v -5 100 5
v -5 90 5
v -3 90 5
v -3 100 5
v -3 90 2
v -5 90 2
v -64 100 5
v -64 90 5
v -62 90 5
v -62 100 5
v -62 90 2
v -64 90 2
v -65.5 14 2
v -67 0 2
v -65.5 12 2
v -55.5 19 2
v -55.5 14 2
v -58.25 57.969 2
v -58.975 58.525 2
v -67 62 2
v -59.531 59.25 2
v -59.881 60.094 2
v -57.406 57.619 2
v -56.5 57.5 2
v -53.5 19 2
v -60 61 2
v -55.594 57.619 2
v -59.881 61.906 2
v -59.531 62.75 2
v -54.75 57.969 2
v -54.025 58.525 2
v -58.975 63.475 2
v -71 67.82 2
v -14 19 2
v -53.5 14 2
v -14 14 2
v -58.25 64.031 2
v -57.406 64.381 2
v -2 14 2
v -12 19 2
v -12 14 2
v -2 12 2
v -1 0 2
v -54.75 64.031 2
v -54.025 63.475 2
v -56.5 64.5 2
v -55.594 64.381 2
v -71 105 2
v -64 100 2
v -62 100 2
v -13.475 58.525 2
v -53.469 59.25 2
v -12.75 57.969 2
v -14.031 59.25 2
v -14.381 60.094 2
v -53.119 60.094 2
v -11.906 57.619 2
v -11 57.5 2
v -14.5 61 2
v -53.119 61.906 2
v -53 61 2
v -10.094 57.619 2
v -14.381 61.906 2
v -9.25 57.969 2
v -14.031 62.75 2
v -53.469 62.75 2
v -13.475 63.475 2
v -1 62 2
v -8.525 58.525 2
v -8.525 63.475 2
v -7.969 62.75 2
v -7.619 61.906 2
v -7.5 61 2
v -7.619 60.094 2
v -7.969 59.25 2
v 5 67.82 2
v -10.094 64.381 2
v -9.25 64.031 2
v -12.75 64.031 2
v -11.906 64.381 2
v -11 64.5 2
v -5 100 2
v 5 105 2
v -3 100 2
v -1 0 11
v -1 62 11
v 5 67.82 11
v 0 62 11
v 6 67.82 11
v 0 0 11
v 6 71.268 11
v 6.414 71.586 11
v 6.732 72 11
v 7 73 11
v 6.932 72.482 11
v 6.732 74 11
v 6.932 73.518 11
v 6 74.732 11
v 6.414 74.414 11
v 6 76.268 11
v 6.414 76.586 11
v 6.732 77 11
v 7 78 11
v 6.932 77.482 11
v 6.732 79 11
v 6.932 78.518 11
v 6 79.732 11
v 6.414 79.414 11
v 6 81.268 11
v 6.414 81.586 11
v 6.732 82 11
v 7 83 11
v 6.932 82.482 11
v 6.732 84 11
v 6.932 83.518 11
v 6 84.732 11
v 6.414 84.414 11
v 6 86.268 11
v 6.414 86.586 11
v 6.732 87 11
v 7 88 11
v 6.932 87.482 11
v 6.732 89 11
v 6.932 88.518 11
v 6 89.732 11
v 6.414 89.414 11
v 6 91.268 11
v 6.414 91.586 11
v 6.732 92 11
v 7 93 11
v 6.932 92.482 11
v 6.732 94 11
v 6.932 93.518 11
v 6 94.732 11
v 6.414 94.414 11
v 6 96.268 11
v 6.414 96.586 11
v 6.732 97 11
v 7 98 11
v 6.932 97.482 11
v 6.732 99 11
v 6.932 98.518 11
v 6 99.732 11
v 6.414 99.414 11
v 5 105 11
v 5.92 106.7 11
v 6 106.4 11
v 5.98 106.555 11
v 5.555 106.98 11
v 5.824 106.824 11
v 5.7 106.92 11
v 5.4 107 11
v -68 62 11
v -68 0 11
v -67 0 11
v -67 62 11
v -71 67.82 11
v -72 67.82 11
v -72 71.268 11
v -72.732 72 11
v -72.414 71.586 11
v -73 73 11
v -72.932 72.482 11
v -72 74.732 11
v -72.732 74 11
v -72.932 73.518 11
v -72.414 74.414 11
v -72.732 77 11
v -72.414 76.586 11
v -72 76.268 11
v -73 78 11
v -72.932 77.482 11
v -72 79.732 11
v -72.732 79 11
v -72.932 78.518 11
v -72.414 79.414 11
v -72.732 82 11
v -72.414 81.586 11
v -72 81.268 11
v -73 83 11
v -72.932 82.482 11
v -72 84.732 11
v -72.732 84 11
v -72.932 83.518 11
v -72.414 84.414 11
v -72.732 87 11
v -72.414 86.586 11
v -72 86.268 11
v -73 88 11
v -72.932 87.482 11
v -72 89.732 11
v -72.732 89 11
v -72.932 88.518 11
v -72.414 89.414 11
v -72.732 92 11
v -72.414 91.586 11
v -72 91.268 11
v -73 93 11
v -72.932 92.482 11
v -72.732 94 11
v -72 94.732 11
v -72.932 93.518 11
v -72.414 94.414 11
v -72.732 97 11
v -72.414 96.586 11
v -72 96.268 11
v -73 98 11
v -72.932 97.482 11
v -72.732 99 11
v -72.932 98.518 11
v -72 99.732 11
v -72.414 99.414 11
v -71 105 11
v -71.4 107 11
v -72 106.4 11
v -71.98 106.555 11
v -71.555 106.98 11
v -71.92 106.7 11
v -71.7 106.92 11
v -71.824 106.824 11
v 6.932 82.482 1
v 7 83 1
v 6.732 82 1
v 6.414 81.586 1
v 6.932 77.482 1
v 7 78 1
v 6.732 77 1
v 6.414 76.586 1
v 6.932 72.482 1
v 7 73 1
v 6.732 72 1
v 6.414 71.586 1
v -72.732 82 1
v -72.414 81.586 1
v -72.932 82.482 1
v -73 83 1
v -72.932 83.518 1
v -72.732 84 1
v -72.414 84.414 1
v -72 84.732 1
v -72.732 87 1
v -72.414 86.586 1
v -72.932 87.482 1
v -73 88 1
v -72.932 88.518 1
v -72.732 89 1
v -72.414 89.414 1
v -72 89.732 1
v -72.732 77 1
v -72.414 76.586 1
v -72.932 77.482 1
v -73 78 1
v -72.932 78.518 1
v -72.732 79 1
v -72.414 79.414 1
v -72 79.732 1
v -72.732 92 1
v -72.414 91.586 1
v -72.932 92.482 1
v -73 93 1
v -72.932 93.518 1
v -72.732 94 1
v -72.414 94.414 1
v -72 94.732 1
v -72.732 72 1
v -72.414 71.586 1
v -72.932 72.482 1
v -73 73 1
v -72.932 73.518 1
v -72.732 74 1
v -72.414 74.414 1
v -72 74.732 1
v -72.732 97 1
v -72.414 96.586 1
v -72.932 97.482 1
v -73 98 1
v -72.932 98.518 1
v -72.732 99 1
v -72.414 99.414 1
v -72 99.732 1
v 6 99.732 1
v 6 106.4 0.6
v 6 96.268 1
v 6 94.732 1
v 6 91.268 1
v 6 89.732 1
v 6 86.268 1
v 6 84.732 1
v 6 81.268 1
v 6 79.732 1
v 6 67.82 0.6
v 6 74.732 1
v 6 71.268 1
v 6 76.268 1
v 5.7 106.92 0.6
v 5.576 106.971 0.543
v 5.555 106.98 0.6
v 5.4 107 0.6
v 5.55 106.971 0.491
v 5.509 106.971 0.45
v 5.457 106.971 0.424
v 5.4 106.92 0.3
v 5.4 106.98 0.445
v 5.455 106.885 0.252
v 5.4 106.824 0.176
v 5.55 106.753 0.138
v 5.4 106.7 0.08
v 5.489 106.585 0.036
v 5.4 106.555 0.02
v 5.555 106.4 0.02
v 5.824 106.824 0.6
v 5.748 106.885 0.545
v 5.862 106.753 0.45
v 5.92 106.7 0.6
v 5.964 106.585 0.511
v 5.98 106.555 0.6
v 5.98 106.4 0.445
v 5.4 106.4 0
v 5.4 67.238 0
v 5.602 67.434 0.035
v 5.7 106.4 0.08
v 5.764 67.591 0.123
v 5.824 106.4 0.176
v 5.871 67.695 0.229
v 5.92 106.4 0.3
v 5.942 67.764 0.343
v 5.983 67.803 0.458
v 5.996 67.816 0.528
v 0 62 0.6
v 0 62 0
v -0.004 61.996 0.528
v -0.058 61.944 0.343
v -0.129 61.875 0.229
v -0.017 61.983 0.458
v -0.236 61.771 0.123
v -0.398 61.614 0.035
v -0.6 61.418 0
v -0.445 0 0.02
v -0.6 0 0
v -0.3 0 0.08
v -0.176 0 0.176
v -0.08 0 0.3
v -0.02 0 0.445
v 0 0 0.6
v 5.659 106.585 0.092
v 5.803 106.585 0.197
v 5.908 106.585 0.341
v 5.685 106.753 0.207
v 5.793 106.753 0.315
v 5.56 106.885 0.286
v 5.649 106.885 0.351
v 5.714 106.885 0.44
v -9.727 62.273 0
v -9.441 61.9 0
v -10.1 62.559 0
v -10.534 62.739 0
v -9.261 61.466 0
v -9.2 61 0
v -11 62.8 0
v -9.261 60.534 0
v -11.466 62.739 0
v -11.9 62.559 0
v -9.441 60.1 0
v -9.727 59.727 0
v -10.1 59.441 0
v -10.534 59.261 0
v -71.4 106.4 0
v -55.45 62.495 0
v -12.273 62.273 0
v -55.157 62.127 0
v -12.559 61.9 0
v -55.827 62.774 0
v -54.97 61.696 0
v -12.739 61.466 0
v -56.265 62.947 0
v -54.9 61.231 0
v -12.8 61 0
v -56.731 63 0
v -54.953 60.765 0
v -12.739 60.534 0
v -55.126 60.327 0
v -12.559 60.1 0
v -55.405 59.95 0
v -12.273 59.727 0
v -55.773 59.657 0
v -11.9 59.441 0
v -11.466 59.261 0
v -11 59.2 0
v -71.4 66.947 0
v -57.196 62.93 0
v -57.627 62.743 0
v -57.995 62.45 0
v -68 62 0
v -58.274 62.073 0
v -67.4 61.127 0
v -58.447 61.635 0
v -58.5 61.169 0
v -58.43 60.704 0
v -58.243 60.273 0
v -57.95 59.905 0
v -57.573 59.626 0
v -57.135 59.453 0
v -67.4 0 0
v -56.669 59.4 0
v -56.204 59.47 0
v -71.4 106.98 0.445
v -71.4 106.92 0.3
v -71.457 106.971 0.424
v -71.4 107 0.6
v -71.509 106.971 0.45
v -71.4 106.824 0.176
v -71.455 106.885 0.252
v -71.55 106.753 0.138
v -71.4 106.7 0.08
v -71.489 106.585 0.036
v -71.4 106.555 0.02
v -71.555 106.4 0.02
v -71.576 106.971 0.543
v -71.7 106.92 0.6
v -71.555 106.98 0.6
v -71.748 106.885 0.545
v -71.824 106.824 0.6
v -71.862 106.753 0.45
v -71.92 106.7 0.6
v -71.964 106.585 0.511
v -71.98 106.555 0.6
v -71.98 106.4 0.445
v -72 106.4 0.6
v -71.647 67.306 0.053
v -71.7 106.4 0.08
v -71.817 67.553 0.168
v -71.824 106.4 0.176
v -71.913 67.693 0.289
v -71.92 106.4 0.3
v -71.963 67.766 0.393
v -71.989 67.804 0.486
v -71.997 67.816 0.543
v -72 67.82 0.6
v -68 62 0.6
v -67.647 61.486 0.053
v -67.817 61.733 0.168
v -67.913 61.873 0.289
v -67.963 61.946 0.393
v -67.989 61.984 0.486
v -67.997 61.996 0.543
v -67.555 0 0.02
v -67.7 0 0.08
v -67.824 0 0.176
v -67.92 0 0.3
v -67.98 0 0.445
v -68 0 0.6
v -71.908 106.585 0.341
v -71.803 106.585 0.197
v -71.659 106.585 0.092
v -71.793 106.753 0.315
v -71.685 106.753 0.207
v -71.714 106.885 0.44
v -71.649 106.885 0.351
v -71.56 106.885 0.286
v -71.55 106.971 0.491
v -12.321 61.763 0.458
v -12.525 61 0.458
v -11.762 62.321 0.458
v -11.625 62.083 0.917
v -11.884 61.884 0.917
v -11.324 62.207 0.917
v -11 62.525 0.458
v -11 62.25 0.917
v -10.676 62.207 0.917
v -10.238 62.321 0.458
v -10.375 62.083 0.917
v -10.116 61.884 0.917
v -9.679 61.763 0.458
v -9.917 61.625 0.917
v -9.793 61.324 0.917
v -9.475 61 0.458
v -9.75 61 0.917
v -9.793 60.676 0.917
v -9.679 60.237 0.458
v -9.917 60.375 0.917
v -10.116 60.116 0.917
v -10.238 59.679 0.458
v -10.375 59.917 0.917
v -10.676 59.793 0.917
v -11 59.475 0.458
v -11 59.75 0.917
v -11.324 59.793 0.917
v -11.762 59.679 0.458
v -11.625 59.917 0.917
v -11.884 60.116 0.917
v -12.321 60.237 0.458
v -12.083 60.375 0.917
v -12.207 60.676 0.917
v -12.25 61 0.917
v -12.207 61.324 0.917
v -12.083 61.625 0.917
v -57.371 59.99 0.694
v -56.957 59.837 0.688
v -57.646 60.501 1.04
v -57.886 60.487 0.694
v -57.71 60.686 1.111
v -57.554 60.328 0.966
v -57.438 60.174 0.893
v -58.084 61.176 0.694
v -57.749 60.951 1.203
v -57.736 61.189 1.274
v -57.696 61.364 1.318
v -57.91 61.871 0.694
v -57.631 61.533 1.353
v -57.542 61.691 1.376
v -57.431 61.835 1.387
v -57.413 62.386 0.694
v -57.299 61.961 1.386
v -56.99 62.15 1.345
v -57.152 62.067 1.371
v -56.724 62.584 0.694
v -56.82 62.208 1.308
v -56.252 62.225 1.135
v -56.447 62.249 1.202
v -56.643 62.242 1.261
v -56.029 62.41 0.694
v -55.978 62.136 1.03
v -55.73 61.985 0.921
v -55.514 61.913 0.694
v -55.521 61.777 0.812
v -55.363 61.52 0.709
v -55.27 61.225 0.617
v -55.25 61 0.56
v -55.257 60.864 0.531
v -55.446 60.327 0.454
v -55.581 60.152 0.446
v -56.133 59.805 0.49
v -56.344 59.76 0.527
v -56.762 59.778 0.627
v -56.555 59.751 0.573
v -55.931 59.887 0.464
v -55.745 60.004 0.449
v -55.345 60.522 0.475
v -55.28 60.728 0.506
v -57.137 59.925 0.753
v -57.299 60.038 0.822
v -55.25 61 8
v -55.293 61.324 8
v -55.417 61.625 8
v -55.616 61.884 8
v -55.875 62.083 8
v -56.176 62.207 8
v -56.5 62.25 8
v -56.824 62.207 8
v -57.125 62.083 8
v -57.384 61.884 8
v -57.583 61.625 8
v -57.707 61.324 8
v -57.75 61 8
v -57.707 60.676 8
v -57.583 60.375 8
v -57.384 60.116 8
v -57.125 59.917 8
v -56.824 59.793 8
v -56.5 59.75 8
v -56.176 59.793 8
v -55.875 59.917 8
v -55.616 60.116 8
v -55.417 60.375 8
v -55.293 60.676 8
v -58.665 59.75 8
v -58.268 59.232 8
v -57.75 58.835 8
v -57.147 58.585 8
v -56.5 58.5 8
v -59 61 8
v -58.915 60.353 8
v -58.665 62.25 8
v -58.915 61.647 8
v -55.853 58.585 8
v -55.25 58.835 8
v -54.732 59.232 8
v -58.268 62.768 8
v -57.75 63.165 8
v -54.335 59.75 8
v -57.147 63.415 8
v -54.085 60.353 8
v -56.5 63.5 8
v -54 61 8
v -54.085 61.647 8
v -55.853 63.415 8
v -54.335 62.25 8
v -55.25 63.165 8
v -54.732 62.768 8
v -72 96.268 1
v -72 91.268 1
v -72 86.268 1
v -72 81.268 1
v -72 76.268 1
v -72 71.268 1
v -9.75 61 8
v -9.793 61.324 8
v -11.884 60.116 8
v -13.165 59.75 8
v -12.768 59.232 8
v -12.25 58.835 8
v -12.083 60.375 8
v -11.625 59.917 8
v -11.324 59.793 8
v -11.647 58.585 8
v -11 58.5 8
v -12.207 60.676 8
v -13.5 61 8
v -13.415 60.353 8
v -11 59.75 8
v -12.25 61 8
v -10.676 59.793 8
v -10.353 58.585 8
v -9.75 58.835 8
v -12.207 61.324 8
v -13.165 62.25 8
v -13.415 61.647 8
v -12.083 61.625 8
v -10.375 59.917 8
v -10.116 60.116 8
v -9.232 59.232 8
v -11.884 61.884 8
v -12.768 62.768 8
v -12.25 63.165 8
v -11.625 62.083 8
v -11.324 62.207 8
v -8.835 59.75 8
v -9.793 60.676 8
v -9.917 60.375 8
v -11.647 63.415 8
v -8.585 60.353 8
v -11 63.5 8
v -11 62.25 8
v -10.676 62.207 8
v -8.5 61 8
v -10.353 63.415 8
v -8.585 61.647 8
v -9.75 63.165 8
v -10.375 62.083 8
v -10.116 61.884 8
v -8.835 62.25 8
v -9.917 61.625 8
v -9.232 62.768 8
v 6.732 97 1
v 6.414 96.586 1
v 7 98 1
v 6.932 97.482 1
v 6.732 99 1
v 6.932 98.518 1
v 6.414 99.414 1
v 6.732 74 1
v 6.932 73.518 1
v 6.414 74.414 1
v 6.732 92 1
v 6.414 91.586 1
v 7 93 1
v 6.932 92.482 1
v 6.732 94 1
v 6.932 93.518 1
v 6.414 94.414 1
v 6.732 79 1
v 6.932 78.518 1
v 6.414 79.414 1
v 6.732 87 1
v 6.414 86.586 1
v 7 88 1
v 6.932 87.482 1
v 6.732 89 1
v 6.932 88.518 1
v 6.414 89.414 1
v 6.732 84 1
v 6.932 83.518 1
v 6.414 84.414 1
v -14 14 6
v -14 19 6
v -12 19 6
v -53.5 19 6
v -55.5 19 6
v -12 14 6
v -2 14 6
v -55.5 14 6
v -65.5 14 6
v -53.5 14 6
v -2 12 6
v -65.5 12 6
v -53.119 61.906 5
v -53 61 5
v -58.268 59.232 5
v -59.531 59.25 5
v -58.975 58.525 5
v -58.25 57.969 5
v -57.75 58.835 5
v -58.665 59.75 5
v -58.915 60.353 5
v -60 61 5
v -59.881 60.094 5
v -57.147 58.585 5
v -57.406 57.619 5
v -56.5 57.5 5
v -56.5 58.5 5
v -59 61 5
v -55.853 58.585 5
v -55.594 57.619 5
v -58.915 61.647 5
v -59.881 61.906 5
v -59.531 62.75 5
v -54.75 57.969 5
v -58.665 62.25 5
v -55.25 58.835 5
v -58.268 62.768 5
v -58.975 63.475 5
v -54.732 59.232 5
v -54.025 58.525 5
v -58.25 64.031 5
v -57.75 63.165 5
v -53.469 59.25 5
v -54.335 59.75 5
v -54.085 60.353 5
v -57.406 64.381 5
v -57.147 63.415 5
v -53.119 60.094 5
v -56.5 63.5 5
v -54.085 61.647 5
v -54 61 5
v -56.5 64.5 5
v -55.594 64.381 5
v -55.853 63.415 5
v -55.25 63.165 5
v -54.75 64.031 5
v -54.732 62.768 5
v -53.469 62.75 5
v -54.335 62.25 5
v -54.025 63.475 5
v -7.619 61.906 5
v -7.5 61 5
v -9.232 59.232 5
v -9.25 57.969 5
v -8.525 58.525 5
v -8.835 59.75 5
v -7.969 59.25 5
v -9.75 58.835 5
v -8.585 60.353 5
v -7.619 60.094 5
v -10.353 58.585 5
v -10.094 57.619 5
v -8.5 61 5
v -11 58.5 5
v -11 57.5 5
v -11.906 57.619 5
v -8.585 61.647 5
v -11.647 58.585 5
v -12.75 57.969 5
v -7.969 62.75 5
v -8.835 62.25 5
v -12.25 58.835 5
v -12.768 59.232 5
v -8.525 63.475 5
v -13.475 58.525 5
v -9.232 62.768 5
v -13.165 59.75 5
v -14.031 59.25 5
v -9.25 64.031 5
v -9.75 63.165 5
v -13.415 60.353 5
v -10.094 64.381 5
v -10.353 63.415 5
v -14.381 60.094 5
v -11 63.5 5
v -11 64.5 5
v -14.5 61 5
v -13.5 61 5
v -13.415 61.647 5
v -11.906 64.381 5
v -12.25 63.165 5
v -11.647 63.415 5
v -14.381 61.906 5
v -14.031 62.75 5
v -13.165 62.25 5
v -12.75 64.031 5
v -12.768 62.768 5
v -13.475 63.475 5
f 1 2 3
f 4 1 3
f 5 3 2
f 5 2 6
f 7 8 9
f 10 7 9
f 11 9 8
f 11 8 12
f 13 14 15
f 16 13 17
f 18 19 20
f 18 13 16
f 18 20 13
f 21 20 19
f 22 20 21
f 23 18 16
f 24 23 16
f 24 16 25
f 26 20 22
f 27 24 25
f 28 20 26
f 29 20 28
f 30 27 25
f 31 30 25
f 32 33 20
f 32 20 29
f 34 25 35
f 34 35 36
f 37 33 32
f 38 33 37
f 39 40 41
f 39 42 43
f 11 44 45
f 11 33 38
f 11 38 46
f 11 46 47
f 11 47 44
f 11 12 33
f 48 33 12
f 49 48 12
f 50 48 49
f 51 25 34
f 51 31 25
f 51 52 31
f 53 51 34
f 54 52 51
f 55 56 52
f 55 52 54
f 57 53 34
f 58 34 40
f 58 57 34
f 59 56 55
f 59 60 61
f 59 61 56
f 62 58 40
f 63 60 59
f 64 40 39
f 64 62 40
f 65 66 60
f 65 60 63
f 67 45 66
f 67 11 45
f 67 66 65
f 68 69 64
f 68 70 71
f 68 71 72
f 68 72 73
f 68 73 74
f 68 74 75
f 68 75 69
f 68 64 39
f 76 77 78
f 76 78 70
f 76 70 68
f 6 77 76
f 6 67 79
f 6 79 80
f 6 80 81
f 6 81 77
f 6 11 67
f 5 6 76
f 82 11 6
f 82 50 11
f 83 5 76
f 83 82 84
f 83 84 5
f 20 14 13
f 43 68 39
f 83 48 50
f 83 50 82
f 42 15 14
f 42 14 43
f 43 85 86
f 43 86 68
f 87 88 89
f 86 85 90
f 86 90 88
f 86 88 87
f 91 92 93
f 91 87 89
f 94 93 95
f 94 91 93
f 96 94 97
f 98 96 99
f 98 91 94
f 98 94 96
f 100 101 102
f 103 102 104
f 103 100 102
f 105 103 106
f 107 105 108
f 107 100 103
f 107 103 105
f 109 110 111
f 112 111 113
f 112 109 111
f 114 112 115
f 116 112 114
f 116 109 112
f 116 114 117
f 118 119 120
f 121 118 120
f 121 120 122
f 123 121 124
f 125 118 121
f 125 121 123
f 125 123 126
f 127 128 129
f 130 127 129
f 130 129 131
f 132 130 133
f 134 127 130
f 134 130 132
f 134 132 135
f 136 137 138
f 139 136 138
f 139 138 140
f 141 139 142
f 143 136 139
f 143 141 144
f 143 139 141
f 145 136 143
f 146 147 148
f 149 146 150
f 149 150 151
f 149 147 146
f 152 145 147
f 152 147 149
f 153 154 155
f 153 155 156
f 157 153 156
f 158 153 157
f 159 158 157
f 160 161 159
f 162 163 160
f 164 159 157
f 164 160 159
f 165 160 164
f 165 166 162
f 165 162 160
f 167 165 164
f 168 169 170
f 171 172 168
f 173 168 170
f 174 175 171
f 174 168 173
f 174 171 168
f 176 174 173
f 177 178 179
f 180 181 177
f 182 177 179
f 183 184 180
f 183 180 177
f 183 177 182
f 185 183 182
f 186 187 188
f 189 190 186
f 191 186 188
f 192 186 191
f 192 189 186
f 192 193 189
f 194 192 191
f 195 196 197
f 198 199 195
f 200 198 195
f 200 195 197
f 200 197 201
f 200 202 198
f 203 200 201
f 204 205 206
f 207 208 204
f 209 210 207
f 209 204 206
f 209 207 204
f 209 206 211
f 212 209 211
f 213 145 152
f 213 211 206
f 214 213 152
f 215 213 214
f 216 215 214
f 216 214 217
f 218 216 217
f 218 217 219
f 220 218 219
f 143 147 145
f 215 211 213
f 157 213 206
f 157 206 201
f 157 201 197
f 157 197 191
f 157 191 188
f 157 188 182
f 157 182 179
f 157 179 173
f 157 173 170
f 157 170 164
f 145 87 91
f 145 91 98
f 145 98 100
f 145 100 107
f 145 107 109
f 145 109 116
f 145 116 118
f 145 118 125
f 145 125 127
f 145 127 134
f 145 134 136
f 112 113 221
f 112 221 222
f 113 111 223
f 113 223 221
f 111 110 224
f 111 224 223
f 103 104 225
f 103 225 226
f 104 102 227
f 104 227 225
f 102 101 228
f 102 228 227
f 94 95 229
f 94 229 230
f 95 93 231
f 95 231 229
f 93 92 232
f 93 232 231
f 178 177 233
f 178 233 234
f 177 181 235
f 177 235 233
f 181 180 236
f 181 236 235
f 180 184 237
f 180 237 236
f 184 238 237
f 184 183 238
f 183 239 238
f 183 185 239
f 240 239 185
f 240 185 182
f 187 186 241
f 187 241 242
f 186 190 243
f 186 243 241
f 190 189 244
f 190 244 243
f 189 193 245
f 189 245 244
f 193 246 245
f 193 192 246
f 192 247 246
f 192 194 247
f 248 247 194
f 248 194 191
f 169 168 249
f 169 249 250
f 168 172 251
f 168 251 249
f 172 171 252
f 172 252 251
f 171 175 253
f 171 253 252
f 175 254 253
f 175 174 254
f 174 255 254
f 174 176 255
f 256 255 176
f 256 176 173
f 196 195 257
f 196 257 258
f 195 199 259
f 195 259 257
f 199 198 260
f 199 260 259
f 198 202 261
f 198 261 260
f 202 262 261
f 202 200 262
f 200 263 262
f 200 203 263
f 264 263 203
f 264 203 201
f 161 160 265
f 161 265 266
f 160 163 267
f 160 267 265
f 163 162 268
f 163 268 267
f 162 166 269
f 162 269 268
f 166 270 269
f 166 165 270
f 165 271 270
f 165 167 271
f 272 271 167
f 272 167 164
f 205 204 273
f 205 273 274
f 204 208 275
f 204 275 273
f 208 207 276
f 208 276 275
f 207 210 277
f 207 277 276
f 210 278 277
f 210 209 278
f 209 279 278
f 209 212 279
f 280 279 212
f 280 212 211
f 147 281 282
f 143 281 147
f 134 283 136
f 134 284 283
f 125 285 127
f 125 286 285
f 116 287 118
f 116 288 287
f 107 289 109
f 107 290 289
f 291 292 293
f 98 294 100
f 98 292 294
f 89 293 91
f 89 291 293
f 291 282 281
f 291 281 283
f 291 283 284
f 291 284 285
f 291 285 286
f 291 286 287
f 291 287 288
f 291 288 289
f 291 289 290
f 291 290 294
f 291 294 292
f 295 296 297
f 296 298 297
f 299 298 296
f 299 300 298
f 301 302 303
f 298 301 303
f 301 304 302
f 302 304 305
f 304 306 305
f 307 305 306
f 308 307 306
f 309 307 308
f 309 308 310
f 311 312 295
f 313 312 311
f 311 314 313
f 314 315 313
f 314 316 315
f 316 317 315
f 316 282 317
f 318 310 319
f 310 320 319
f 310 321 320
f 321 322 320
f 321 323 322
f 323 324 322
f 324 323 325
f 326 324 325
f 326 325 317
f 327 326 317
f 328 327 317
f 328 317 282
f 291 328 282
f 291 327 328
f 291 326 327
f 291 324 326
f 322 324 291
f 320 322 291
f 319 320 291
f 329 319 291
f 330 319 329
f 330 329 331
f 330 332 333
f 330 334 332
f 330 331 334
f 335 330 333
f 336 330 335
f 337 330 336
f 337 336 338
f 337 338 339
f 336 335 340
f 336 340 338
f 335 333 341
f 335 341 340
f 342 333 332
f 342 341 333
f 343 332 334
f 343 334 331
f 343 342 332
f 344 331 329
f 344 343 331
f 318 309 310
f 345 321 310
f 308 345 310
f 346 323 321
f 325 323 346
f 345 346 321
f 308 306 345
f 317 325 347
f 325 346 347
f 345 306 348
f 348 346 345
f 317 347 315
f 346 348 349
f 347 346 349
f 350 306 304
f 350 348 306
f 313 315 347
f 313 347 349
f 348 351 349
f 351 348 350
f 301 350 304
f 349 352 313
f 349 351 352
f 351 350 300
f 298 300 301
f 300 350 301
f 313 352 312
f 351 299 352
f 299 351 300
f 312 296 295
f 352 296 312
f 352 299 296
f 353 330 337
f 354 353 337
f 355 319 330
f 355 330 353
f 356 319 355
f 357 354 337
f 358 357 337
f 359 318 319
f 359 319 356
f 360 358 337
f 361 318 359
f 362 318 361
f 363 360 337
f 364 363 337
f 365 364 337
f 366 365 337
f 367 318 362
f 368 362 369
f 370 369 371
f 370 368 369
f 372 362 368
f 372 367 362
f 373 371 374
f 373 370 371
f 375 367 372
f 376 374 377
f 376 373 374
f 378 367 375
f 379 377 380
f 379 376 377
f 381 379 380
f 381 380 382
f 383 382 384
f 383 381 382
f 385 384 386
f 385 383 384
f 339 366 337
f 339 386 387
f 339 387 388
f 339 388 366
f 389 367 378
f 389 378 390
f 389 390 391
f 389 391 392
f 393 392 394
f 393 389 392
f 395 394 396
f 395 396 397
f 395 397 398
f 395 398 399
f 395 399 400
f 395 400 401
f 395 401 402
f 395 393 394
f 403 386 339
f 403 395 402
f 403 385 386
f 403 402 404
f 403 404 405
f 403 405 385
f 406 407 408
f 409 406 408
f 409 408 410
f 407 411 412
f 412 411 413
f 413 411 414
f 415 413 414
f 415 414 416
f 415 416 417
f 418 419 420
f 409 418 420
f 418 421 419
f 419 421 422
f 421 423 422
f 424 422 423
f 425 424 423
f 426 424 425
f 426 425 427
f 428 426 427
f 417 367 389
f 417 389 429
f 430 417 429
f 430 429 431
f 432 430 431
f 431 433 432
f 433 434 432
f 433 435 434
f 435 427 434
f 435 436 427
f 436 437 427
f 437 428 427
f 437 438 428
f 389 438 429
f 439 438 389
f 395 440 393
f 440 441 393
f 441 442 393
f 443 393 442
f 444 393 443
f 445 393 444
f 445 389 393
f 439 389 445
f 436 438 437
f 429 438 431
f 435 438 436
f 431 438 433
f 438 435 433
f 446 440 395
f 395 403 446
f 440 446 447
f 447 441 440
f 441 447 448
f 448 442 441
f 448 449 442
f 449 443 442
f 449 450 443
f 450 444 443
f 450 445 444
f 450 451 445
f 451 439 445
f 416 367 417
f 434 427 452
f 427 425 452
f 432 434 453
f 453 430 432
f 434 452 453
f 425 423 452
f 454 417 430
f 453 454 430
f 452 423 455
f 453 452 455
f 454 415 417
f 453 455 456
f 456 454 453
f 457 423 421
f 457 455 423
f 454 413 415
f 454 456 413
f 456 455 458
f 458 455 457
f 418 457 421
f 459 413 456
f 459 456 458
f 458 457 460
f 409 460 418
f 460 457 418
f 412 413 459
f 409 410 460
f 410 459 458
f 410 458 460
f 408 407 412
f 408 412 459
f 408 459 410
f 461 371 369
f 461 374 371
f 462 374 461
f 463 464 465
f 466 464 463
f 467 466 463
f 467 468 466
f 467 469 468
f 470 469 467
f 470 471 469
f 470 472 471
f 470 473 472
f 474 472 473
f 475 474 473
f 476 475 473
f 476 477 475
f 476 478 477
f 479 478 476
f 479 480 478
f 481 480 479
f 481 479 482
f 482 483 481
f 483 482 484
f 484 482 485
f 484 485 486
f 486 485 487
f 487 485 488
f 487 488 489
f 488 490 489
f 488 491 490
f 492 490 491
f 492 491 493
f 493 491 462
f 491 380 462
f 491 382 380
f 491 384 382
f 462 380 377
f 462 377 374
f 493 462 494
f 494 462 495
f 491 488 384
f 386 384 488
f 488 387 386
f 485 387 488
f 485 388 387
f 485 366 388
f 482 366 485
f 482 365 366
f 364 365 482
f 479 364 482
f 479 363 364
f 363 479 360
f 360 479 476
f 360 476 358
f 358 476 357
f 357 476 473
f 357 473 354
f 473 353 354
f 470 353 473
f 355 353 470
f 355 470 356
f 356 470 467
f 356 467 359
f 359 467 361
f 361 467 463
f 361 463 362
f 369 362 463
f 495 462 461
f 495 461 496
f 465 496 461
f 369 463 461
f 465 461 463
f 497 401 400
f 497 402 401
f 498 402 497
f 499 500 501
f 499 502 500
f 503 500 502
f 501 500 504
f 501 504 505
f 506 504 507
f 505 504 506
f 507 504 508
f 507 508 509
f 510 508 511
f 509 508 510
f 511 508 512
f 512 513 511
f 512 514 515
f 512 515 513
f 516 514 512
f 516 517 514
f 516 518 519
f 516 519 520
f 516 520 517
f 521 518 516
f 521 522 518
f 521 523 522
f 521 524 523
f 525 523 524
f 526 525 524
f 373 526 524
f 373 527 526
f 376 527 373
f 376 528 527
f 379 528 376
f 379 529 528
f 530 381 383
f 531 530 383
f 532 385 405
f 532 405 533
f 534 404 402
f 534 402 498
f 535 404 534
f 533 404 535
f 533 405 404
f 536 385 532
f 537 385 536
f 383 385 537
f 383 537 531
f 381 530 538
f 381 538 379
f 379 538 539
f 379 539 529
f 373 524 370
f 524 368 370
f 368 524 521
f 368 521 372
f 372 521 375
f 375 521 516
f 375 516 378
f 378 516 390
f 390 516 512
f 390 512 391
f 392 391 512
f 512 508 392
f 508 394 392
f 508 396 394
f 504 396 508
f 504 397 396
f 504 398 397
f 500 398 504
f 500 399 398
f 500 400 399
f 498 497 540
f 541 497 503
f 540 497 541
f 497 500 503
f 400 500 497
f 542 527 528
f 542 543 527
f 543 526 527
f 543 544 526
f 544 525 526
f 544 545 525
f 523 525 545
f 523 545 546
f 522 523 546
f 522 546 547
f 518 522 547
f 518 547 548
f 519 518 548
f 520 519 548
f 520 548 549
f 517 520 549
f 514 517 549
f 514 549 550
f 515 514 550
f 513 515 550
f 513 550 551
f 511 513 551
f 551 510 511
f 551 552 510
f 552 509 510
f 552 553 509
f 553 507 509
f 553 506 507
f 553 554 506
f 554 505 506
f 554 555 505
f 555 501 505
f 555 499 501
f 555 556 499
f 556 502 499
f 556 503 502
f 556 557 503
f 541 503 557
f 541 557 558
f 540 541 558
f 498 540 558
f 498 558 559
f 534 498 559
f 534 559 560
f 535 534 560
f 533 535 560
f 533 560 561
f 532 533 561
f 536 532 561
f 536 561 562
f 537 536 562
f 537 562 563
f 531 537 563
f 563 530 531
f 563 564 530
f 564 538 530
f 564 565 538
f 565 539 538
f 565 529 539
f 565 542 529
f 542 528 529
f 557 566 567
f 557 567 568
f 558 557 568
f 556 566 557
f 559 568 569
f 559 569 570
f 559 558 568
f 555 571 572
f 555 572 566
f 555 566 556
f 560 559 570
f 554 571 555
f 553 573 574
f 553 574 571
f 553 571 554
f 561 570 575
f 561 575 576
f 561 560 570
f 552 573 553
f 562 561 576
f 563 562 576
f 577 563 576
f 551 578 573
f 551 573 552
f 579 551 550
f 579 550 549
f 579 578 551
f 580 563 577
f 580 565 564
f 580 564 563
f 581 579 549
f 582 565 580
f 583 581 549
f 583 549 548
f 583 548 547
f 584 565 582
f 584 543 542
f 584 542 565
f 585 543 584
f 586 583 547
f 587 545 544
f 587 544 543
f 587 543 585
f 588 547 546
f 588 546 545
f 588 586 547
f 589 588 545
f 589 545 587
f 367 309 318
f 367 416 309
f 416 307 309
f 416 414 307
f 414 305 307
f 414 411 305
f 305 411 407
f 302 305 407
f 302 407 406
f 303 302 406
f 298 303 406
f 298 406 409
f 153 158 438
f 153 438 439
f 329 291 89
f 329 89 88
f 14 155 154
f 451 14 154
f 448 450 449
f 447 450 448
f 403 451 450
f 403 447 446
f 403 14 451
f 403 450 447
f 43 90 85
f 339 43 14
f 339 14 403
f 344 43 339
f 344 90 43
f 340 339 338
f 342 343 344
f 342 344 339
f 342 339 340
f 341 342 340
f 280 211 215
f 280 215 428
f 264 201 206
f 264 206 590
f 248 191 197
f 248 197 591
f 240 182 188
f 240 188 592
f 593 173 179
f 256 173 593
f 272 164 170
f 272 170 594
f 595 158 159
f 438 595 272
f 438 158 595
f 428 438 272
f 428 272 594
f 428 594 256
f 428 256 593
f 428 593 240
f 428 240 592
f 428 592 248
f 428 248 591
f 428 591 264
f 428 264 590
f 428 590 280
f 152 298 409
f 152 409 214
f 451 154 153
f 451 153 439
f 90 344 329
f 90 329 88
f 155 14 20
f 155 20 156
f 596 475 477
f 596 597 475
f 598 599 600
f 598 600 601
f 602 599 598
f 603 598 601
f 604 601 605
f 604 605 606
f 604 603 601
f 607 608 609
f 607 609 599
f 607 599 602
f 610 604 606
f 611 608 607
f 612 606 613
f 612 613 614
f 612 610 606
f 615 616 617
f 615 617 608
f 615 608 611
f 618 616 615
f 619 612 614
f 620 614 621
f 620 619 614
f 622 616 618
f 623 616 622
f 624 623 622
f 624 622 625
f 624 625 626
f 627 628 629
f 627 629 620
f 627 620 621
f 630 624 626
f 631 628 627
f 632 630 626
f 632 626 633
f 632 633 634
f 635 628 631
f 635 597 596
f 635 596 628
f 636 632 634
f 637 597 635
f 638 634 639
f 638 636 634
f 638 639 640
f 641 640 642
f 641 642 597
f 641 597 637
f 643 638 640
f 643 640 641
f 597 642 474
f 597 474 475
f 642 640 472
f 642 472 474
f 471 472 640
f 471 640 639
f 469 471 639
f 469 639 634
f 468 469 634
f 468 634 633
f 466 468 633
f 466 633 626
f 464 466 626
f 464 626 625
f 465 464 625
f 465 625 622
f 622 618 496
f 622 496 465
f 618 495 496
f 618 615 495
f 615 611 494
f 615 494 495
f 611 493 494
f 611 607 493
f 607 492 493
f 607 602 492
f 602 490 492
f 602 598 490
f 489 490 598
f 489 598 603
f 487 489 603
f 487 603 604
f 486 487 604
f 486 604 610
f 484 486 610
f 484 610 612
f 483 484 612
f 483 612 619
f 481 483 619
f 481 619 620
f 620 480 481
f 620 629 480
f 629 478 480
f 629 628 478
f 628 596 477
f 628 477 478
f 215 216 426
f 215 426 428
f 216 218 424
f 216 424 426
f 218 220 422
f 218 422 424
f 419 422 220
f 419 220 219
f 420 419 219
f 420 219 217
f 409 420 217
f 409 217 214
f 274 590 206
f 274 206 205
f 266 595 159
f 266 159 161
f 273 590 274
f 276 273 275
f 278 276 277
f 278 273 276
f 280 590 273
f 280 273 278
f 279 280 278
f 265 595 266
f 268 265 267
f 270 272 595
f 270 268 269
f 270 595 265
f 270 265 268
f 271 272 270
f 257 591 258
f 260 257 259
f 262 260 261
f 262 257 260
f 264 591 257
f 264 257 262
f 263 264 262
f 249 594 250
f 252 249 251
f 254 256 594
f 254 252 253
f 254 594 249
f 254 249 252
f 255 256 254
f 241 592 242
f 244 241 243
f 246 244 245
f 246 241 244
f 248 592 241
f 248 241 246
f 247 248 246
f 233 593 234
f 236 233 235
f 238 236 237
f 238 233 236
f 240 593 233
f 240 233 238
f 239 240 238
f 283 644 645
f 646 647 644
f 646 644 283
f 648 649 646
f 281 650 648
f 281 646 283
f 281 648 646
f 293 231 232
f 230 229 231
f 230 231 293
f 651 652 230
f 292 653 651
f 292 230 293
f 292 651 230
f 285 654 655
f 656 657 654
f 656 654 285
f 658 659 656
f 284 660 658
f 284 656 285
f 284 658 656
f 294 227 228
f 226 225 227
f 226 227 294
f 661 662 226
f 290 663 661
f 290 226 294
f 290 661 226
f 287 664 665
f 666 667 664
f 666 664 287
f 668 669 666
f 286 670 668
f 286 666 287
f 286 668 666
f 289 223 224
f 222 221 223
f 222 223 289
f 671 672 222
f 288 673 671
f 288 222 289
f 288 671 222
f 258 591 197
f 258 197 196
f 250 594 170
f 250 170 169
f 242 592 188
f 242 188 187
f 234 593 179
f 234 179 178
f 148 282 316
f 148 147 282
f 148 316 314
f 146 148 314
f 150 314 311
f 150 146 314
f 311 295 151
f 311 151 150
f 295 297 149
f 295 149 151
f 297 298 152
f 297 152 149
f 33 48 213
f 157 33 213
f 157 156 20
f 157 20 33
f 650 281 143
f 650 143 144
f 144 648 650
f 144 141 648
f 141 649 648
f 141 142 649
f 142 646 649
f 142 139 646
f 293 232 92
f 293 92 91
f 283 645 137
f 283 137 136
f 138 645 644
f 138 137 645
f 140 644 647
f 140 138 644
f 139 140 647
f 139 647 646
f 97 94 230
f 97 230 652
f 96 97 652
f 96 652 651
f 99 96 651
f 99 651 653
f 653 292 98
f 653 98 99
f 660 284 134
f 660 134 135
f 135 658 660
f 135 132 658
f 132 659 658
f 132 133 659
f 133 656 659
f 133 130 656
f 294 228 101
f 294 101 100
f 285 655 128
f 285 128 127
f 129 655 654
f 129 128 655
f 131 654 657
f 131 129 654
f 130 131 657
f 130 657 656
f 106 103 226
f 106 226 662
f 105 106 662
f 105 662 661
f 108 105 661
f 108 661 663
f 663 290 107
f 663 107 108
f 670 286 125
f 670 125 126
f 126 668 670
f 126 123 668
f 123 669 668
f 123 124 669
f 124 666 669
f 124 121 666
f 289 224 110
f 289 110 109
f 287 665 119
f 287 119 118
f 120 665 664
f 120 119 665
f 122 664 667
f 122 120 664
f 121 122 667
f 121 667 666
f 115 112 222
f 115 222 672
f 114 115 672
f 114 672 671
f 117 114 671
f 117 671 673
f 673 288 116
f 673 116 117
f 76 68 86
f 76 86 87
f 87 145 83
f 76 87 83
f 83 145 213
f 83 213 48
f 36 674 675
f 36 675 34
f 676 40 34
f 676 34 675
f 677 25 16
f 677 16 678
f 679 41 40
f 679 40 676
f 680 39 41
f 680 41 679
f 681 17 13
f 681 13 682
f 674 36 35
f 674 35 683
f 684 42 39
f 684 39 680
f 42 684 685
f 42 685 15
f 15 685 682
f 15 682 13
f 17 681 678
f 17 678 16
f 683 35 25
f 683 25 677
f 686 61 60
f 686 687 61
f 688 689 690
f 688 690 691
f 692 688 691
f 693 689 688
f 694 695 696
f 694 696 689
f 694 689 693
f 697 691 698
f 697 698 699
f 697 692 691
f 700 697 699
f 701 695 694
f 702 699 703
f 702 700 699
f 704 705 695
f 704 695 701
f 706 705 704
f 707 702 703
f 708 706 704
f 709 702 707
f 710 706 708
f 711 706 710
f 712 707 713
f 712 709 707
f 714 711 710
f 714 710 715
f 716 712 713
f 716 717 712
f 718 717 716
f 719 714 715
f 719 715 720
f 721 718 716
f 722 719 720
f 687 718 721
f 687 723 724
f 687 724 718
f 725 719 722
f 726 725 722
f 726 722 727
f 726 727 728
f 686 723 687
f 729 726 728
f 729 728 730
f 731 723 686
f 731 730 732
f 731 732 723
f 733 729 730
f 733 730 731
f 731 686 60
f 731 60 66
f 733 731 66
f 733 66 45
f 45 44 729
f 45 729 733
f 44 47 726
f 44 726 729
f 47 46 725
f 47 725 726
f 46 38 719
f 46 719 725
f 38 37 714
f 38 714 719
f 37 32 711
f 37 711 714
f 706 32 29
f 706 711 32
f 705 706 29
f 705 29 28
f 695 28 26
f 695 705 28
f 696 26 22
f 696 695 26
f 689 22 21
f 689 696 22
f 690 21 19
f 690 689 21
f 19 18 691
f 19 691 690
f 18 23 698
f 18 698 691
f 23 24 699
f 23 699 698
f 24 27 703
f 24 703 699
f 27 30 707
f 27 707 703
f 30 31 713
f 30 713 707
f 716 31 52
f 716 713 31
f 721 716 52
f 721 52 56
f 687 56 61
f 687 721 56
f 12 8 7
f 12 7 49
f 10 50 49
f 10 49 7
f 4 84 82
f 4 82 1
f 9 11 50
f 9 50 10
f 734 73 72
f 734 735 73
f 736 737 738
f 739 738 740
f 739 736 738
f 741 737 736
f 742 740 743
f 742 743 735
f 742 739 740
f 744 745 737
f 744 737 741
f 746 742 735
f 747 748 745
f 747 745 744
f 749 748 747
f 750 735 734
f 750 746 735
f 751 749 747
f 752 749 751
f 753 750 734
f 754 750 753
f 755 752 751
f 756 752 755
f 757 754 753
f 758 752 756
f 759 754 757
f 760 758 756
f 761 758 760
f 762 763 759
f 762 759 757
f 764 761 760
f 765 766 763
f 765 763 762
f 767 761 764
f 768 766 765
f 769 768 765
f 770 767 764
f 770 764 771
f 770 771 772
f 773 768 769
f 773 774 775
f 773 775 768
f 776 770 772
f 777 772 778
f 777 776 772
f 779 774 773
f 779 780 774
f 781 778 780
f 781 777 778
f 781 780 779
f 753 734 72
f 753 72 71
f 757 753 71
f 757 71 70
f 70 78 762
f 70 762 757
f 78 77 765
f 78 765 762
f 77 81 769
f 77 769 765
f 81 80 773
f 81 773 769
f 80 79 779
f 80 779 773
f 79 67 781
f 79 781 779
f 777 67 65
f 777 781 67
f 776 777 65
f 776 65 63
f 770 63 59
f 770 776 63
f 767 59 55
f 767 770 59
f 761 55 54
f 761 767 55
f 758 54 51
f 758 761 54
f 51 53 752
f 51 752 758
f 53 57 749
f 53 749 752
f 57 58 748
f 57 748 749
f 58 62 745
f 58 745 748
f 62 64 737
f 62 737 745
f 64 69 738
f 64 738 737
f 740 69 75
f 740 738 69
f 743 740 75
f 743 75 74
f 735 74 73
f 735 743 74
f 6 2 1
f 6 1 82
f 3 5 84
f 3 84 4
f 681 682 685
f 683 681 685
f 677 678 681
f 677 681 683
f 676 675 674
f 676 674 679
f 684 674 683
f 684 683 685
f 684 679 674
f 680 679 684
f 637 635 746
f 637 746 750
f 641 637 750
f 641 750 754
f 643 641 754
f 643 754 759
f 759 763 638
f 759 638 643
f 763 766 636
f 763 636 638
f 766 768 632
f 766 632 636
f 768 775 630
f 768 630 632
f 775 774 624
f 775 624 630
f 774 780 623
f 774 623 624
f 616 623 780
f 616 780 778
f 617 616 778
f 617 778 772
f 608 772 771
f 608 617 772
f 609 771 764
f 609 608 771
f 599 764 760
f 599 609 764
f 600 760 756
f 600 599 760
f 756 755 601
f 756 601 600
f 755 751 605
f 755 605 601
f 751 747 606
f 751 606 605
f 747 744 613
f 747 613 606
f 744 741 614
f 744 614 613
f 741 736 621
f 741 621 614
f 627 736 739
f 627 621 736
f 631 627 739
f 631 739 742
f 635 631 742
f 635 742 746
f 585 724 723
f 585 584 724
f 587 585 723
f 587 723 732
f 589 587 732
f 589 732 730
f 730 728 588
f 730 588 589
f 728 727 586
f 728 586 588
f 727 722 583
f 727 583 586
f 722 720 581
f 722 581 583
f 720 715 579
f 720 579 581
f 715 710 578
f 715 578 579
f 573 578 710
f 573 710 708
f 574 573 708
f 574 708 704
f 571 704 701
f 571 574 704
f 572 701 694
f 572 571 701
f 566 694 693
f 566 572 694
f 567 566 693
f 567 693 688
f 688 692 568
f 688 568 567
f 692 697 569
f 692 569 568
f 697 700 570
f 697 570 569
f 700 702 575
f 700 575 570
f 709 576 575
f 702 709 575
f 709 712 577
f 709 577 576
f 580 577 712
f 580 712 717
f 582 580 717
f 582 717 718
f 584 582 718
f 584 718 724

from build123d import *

# Parameters (mm, degrees)
CONE001_PLACEMENT_ANGLE = 1
CYLINDER001_R           = 1.25
CYLINDER001_DEPTH       = 16
CYLINDER002_R           = 1.25
CYLINDER002_DEPTH       = 20
BOX003_W                = 5
BOX003_H                = 35
BOX003_DEPTH            = 12
BOX002_W                = 5
BOX002_H                = 35
BOX002_DEPTH            = 12
CYLINDER013_R           = 2
CYLINDER013_DEPTH       = 10
CYLINDER014_R           = 2
CYLINDER014_DEPTH       = 10
CYLINDER015_R           = 2
CYLINDER015_DEPTH       = 10
CYLINDER016_R           = 2
CYLINDER016_DEPTH       = 10
CYLINDER017_R           = 2
CYLINDER017_DEPTH       = 10
CYLINDER012_R           = 2
CYLINDER012_DEPTH       = 10
CYLINDER007_R           = 2
CYLINDER007_DEPTH       = 10
CYLINDER008_R           = 2
CYLINDER008_DEPTH       = 10
CYLINDER009_R           = 2
CYLINDER009_DEPTH       = 10
CYLINDER010_R           = 2
CYLINDER010_DEPTH       = 10
CYLINDER011_R           = 2
CYLINDER011_DEPTH       = 10
CYLINDER006_R           = 2
CYLINDER006_DEPTH       = 10
PAD013_DEPTH            = 5
BOX_W                   = 2
BOX_H                   = 10
BOX_DEPTH               = 4
CYLINDER004_R           = 2.5
CYLINDER004_DEPTH       = 4
BOX001_W                = 2
BOX001_H                = 10
BOX001_DEPTH            = 4
CYLINDER003_R           = 3.5
CYLINDER003_DEPTH       = 4
CYLINDER005_R           = 2.5
CYLINDER005_DEPTH       = 3
CYLINDER_R              = 3.5
CYLINDER_DEPTH          = 4
PAD015_DEPTH            = 10
PAD_DEPTH               = 11
PAD014_DEPTH            = 10
FILLET_R                = 0.6
FILLET001_R             = 0.6
FILLET002_R             = 0.6
FILLET003_R             = 0.6
FILLET004_R             = 0.6


with BuildPart() as cono:
    # Cone → Cone (revolve)
    with BuildSketch(Plane(origin=(-11, 61, -2), x_dir=(-1, 0, 0), z_dir=(0, 1, 0))):
        Polygon((0, 0), (3, 0), (0, 5), align=None)
    revolve(axis=Axis((-11, 61, -2), (0, 0, 1)))


with BuildPart() as cono001:
    # Cone001 → Cone001 (revolve)
    with BuildSketch(Plane.XZ):
        Polygon((0, 0), (3, 0), (0, 5), align=None)
    revolve(axis=Axis((0, 0, 0), (0, 0, 1)))


with BuildPart() as cono001_1:
    # Cone001 placement: moved
    add(cono001.part.moved(Location((-56.7, 61.2, -2))).rotate(Axis((-56.7, 61.2, -2), (0, 0, 1)), CONE001_PLACEMENT_ANGLE))


with BuildPart() as cilindro:
    # Cylinder001 → Cylinder001 (new body)
    with BuildSketch(Plane(origin=(-11, 61, -2), x_dir=(1, 0, 0), z_dir=(0, 0, 1))):
        Circle(CYLINDER001_R)
    extrude(amount=CYLINDER001_DEPTH)


with BuildPart() as cilindro001:
    # Cylinder002 → Cylinder002 (new body)
    with BuildSketch(Plane(origin=(-56.5, 61, -2), x_dir=(1, 0, 0), z_dir=(0, 0, 1))):
        Circle(CYLINDER002_R)
    extrude(amount=CYLINDER002_DEPTH)


with BuildPart() as cubo003:
    # Box003 → Box003 (new body)
    with BuildSketch(Plane(origin=(-71, 69, 2), x_dir=(1, 0, 0), z_dir=(0, 0, 1))):
        with Locations((2.5, 17.5)):
            Rectangle(BOX003_W, BOX003_H)
    extrude(amount=BOX003_DEPTH)


with BuildPart() as cubo002:
    # Box002 → Box002 (new body)
    with BuildSketch(Plane(origin=(0, 69, 2), x_dir=(1, 0, 0), z_dir=(0, 0, 1))):
        with Locations((2.5, 17.5)):
            Rectangle(BOX002_W, BOX002_H)
    extrude(amount=BOX002_DEPTH)


with BuildPart() as cilindro013:
    # Cylinder013 → Cylinder013 (new body)
    with BuildSketch(Plane(origin=(5, 73, 1), x_dir=(1, 0, 0), z_dir=(0, 0, 1))):
        Circle(CYLINDER013_R)
    extrude(amount=CYLINDER013_DEPTH)


with BuildPart() as cilindro014:
    # Cylinder014 → Cylinder014 (new body)
    with BuildSketch(Plane(origin=(5, 83, 1), x_dir=(1, 0, 0), z_dir=(0, 0, 1))):
        Circle(CYLINDER014_R)
    extrude(amount=CYLINDER014_DEPTH)


with BuildPart() as cilindro015:
    # Cylinder015 → Cylinder015 (new body)
    with BuildSketch(Plane(origin=(5, 88, 1), x_dir=(1, 0, 0), z_dir=(0, 0, 1))):
        Circle(CYLINDER015_R)
    extrude(amount=CYLINDER015_DEPTH)


with BuildPart() as cilindro016:
    # Cylinder016 → Cylinder016 (new body)
    with BuildSketch(Plane(origin=(5, 93, 1), x_dir=(1, 0, 0), z_dir=(0, 0, 1))):
        Circle(CYLINDER016_R)
    extrude(amount=CYLINDER016_DEPTH)


with BuildPart() as cilindro017:
    # Cylinder017 → Cylinder017 (new body)
    with BuildSketch(Plane(origin=(5, 98, 1), x_dir=(1, 0, 0), z_dir=(0, 0, 1))):
        Circle(CYLINDER017_R)
    extrude(amount=CYLINDER017_DEPTH)


with BuildPart() as cil_sx:
    # Cylinder012 → Cylinder012 (new body)
    with BuildSketch(Plane(origin=(5, 78, 1), x_dir=(1, 0, 0), z_dir=(0, 0, 1))):
        Circle(CYLINDER012_R)
    extrude(amount=CYLINDER012_DEPTH)

    # Fusion010: union Cilindro013, Cilindro014, Cilindro015, Cilindro016, Cilindro017
    add(cilindro013.part)
    add(cilindro014.part)
    add(cilindro015.part)
    add(cilindro016.part)
    add(cilindro017.part)


with BuildPart() as cil_sx_1:
    # Fusion010 placement: moved
    add(cil_sx.part.moved(Location((-76, 0, 0))))


with BuildPart() as cilindro007:
    # Cylinder007 → Cylinder007 (new body)
    with BuildSketch(Plane(origin=(5, 73, 1), x_dir=(1, 0, 0), z_dir=(0, 0, 1))):
        Circle(CYLINDER007_R)
    extrude(amount=CYLINDER007_DEPTH)


with BuildPart() as cilindro008:
    # Cylinder008 → Cylinder008 (new body)
    with BuildSketch(Plane(origin=(5, 83, 1), x_dir=(1, 0, 0), z_dir=(0, 0, 1))):
        Circle(CYLINDER008_R)
    extrude(amount=CYLINDER008_DEPTH)


with BuildPart() as cilindro009:
    # Cylinder009 → Cylinder009 (new body)
    with BuildSketch(Plane(origin=(5, 88, 1), x_dir=(1, 0, 0), z_dir=(0, 0, 1))):
        Circle(CYLINDER009_R)
    extrude(amount=CYLINDER009_DEPTH)


with BuildPart() as cilindro010:
    # Cylinder010 → Cylinder010 (new body)
    with BuildSketch(Plane(origin=(5, 93, 1), x_dir=(1, 0, 0), z_dir=(0, 0, 1))):
        Circle(CYLINDER010_R)
    extrude(amount=CYLINDER010_DEPTH)


with BuildPart() as cilindro011:
    # Cylinder011 → Cylinder011 (new body)
    with BuildSketch(Plane(origin=(5, 98, 1), x_dir=(1, 0, 0), z_dir=(0, 0, 1))):
        Circle(CYLINDER011_R)
    extrude(amount=CYLINDER011_DEPTH)


with BuildPart() as cut:
    # Cylinder006 → Cylinder006 (new body)
    with BuildSketch(Plane(origin=(5, 78, 1), x_dir=(1, 0, 0), z_dir=(0, 0, 1))):
        Circle(CYLINDER006_R)
    extrude(amount=CYLINDER006_DEPTH)

    # Fusion009: union Cilindro007, Cilindro008, Cilindro009, Cilindro010, Cilindro011
    add(cilindro007.part)
    add(cilindro008.part)
    add(cilindro009.part)
    add(cilindro010.part)
    add(cilindro011.part)

    # Fusion011: union cil_sx
    add(cil_sx_1.part)

    # Cut014: cut Cubo002
    add(cubo002.part, mode=Mode.SUBTRACT)

    # Cut: cut Cubo003
    add(cubo003.part, mode=Mode.SUBTRACT)


with BuildPart() as front_bar:
    # Sketch004 → Pad013 (new body)
    with BuildSketch(Plane.XY.offset(1)):
        Polygon((-65.5, 12), (-2, 12), (-2, 14), (-12, 14), (-12, 19), (-14, 19), (-14, 14), (-53.5, 14), (-53.5, 19), (-55.5, 19), (-55.5, 14), (-65.5, 14), align=None)
    extrude(amount=PAD013_DEPTH)


with BuildPart() as cubo:
    # Box → Box (new body)
    with BuildSketch(Plane(origin=(-5, 90, 1), x_dir=(1, 0, 0), z_dir=(0, 0, 1))):
        with Locations((1, 5)):
            Rectangle(BOX_W, BOX_H)
    extrude(amount=BOX_DEPTH)


with BuildPart() as cilindro003:
    # Cylinder004 → Cylinder004 (new body)
    with BuildSketch(Plane(origin=(-11, 61, 4), x_dir=(1, 0, 0), z_dir=(0, 0, 1))):
        Circle(CYLINDER004_R)
    extrude(amount=CYLINDER004_DEPTH)


with BuildPart() as cubo001:
    # Box001 → Box001 (new body)
    with BuildSketch(Plane(origin=(-64, 90, 1), x_dir=(1, 0, 0), z_dir=(0, 0, 1))):
        with Locations((1, 5)):
            Rectangle(BOX001_W, BOX001_H)
    extrude(amount=BOX001_DEPTH)


with BuildPart() as fusion004:
    # Cylinder003 → Cylinder003 (new body)
    with BuildSketch(Plane(origin=(-11, 61, 1), x_dir=(1, 0, 0), z_dir=(0, 0, 1))):
        Circle(CYLINDER003_R)
    extrude(amount=CYLINDER003_DEPTH)

    # Fusion003: union Cubo001
    add(cubo001.part)

    # Fusion004: union Cilindro003
    add(cilindro003.part)


with BuildPart() as cilindro005:
    # Cylinder005 → Cylinder005 (new body)
    with BuildSketch(Plane(origin=(-56.5, 61, 5), x_dir=(1, 0, 0), z_dir=(0, 0, 1))):
        Circle(CYLINDER005_R)
    extrude(amount=CYLINDER005_DEPTH)


with BuildPart() as cilindro004:
    # Cylinder → Cylinder (new body)
    with BuildSketch(Plane(origin=(-56.5, 61, 1), x_dir=(1, 0, 0), z_dir=(0, 0, 1))):
        Circle(CYLINDER_R)
    extrude(amount=CYLINDER_DEPTH)


with BuildPart() as base:
    # Sketch005 → Pad015 (new body)
    with BuildSketch(Plane(origin=(-1, 0, 2), x_dir=(1, 0, 0), z_dir=(0, 0, 1))):
        Polygon((0, 0), (-66, 0), (-66, 62), (-70, 67.82), (-70, 105), (6, 105), (6, 67.82), (0, 62), align=None)
    extrude(amount=PAD015_DEPTH)


with BuildPart() as bot_final:
    # Pad base: copy of front_bar
    add(front_bar.part)

    # Sketch → Pad (new body)
    with BuildSketch(Plane.XY):
        Polygon((0, 0), (-68, 0), (-68, 62), (-72, 67.82), (-72, 107), (6, 107), (6, 67.82), (0, 62), align=None)
    extrude(amount=PAD_DEPTH)

    # Sketch005 → Pad014 (new body)
    with BuildSketch(Plane(origin=(-1, 0, 2), x_dir=(1, 0, 0), z_dir=(0, 0, 1))):
        Polygon((0, 0), (-66, 0), (-66, 62), (-70, 67.82), (-70, 105), (6, 105), (6, 67.82), (0, 62), align=None)
    extrude(amount=PAD014_DEPTH)

    # Cut013: cut Base
    add(base.part, mode=Mode.SUBTRACT)

    # Fusion: union Cilindro004
    add(cilindro004.part)

    # Fusion012: union Cilindro005
    add(cilindro005.part)

    # Fusion013: union Fusion004
    add(fusion004.part)

    # Fusion014: union Cubo
    add(cubo.part)

    # Fusion015: union front_bar
    add(front_bar.part)

    # Fusion016: union Cut
    add(cut.part)

    # Cut016: cut Cilindro001
    add(cilindro001.part, mode=Mode.SUBTRACT)

    # Cut017: cut Cilindro
    add(cilindro.part, mode=Mode.SUBTRACT)

    # Cut018: cut Cono001
    add(cono001_1.part, mode=Mode.SUBTRACT)

    # Cut019: cut Cono
    add(cono.part, mode=Mode.SUBTRACT)

    # Fillet
    fillet_edges = [bot_final.edges().sort_by_distance(p)[0] for p in [
        (-68, 31, 0),
    ]]
    fillet(fillet_edges, radius=FILLET_R)

    # Fillet001
    fillet001_edges = [bot_final.edges().sort_by_distance(p)[0] for p in [
        (0, 31, 0),
    ]]
    fillet(fillet001_edges, radius=FILLET001_R)

    # Fillet002
    fillet002_edges = [bot_final.edges().sort_by_distance(p)[0] for p in [
        (-72, 87.41, 0),
    ]]
    fillet(fillet002_edges, radius=FILLET002_R)

    # Fillet003
    fillet003_edges = [bot_final.edges().sort_by_distance(p)[0] for p in [
        (6, 87.41, 0),
    ]]
    fillet(fillet003_edges, radius=FILLET003_R)

    # Fillet004
    fillet004_edges = [bot_final.edges().sort_by_distance(p)[0] for p in [
        (-33, 107, 0),
    ]]
    fillet(fillet004_edges, radius=FILLET004_R)


solid = bot_final.part
